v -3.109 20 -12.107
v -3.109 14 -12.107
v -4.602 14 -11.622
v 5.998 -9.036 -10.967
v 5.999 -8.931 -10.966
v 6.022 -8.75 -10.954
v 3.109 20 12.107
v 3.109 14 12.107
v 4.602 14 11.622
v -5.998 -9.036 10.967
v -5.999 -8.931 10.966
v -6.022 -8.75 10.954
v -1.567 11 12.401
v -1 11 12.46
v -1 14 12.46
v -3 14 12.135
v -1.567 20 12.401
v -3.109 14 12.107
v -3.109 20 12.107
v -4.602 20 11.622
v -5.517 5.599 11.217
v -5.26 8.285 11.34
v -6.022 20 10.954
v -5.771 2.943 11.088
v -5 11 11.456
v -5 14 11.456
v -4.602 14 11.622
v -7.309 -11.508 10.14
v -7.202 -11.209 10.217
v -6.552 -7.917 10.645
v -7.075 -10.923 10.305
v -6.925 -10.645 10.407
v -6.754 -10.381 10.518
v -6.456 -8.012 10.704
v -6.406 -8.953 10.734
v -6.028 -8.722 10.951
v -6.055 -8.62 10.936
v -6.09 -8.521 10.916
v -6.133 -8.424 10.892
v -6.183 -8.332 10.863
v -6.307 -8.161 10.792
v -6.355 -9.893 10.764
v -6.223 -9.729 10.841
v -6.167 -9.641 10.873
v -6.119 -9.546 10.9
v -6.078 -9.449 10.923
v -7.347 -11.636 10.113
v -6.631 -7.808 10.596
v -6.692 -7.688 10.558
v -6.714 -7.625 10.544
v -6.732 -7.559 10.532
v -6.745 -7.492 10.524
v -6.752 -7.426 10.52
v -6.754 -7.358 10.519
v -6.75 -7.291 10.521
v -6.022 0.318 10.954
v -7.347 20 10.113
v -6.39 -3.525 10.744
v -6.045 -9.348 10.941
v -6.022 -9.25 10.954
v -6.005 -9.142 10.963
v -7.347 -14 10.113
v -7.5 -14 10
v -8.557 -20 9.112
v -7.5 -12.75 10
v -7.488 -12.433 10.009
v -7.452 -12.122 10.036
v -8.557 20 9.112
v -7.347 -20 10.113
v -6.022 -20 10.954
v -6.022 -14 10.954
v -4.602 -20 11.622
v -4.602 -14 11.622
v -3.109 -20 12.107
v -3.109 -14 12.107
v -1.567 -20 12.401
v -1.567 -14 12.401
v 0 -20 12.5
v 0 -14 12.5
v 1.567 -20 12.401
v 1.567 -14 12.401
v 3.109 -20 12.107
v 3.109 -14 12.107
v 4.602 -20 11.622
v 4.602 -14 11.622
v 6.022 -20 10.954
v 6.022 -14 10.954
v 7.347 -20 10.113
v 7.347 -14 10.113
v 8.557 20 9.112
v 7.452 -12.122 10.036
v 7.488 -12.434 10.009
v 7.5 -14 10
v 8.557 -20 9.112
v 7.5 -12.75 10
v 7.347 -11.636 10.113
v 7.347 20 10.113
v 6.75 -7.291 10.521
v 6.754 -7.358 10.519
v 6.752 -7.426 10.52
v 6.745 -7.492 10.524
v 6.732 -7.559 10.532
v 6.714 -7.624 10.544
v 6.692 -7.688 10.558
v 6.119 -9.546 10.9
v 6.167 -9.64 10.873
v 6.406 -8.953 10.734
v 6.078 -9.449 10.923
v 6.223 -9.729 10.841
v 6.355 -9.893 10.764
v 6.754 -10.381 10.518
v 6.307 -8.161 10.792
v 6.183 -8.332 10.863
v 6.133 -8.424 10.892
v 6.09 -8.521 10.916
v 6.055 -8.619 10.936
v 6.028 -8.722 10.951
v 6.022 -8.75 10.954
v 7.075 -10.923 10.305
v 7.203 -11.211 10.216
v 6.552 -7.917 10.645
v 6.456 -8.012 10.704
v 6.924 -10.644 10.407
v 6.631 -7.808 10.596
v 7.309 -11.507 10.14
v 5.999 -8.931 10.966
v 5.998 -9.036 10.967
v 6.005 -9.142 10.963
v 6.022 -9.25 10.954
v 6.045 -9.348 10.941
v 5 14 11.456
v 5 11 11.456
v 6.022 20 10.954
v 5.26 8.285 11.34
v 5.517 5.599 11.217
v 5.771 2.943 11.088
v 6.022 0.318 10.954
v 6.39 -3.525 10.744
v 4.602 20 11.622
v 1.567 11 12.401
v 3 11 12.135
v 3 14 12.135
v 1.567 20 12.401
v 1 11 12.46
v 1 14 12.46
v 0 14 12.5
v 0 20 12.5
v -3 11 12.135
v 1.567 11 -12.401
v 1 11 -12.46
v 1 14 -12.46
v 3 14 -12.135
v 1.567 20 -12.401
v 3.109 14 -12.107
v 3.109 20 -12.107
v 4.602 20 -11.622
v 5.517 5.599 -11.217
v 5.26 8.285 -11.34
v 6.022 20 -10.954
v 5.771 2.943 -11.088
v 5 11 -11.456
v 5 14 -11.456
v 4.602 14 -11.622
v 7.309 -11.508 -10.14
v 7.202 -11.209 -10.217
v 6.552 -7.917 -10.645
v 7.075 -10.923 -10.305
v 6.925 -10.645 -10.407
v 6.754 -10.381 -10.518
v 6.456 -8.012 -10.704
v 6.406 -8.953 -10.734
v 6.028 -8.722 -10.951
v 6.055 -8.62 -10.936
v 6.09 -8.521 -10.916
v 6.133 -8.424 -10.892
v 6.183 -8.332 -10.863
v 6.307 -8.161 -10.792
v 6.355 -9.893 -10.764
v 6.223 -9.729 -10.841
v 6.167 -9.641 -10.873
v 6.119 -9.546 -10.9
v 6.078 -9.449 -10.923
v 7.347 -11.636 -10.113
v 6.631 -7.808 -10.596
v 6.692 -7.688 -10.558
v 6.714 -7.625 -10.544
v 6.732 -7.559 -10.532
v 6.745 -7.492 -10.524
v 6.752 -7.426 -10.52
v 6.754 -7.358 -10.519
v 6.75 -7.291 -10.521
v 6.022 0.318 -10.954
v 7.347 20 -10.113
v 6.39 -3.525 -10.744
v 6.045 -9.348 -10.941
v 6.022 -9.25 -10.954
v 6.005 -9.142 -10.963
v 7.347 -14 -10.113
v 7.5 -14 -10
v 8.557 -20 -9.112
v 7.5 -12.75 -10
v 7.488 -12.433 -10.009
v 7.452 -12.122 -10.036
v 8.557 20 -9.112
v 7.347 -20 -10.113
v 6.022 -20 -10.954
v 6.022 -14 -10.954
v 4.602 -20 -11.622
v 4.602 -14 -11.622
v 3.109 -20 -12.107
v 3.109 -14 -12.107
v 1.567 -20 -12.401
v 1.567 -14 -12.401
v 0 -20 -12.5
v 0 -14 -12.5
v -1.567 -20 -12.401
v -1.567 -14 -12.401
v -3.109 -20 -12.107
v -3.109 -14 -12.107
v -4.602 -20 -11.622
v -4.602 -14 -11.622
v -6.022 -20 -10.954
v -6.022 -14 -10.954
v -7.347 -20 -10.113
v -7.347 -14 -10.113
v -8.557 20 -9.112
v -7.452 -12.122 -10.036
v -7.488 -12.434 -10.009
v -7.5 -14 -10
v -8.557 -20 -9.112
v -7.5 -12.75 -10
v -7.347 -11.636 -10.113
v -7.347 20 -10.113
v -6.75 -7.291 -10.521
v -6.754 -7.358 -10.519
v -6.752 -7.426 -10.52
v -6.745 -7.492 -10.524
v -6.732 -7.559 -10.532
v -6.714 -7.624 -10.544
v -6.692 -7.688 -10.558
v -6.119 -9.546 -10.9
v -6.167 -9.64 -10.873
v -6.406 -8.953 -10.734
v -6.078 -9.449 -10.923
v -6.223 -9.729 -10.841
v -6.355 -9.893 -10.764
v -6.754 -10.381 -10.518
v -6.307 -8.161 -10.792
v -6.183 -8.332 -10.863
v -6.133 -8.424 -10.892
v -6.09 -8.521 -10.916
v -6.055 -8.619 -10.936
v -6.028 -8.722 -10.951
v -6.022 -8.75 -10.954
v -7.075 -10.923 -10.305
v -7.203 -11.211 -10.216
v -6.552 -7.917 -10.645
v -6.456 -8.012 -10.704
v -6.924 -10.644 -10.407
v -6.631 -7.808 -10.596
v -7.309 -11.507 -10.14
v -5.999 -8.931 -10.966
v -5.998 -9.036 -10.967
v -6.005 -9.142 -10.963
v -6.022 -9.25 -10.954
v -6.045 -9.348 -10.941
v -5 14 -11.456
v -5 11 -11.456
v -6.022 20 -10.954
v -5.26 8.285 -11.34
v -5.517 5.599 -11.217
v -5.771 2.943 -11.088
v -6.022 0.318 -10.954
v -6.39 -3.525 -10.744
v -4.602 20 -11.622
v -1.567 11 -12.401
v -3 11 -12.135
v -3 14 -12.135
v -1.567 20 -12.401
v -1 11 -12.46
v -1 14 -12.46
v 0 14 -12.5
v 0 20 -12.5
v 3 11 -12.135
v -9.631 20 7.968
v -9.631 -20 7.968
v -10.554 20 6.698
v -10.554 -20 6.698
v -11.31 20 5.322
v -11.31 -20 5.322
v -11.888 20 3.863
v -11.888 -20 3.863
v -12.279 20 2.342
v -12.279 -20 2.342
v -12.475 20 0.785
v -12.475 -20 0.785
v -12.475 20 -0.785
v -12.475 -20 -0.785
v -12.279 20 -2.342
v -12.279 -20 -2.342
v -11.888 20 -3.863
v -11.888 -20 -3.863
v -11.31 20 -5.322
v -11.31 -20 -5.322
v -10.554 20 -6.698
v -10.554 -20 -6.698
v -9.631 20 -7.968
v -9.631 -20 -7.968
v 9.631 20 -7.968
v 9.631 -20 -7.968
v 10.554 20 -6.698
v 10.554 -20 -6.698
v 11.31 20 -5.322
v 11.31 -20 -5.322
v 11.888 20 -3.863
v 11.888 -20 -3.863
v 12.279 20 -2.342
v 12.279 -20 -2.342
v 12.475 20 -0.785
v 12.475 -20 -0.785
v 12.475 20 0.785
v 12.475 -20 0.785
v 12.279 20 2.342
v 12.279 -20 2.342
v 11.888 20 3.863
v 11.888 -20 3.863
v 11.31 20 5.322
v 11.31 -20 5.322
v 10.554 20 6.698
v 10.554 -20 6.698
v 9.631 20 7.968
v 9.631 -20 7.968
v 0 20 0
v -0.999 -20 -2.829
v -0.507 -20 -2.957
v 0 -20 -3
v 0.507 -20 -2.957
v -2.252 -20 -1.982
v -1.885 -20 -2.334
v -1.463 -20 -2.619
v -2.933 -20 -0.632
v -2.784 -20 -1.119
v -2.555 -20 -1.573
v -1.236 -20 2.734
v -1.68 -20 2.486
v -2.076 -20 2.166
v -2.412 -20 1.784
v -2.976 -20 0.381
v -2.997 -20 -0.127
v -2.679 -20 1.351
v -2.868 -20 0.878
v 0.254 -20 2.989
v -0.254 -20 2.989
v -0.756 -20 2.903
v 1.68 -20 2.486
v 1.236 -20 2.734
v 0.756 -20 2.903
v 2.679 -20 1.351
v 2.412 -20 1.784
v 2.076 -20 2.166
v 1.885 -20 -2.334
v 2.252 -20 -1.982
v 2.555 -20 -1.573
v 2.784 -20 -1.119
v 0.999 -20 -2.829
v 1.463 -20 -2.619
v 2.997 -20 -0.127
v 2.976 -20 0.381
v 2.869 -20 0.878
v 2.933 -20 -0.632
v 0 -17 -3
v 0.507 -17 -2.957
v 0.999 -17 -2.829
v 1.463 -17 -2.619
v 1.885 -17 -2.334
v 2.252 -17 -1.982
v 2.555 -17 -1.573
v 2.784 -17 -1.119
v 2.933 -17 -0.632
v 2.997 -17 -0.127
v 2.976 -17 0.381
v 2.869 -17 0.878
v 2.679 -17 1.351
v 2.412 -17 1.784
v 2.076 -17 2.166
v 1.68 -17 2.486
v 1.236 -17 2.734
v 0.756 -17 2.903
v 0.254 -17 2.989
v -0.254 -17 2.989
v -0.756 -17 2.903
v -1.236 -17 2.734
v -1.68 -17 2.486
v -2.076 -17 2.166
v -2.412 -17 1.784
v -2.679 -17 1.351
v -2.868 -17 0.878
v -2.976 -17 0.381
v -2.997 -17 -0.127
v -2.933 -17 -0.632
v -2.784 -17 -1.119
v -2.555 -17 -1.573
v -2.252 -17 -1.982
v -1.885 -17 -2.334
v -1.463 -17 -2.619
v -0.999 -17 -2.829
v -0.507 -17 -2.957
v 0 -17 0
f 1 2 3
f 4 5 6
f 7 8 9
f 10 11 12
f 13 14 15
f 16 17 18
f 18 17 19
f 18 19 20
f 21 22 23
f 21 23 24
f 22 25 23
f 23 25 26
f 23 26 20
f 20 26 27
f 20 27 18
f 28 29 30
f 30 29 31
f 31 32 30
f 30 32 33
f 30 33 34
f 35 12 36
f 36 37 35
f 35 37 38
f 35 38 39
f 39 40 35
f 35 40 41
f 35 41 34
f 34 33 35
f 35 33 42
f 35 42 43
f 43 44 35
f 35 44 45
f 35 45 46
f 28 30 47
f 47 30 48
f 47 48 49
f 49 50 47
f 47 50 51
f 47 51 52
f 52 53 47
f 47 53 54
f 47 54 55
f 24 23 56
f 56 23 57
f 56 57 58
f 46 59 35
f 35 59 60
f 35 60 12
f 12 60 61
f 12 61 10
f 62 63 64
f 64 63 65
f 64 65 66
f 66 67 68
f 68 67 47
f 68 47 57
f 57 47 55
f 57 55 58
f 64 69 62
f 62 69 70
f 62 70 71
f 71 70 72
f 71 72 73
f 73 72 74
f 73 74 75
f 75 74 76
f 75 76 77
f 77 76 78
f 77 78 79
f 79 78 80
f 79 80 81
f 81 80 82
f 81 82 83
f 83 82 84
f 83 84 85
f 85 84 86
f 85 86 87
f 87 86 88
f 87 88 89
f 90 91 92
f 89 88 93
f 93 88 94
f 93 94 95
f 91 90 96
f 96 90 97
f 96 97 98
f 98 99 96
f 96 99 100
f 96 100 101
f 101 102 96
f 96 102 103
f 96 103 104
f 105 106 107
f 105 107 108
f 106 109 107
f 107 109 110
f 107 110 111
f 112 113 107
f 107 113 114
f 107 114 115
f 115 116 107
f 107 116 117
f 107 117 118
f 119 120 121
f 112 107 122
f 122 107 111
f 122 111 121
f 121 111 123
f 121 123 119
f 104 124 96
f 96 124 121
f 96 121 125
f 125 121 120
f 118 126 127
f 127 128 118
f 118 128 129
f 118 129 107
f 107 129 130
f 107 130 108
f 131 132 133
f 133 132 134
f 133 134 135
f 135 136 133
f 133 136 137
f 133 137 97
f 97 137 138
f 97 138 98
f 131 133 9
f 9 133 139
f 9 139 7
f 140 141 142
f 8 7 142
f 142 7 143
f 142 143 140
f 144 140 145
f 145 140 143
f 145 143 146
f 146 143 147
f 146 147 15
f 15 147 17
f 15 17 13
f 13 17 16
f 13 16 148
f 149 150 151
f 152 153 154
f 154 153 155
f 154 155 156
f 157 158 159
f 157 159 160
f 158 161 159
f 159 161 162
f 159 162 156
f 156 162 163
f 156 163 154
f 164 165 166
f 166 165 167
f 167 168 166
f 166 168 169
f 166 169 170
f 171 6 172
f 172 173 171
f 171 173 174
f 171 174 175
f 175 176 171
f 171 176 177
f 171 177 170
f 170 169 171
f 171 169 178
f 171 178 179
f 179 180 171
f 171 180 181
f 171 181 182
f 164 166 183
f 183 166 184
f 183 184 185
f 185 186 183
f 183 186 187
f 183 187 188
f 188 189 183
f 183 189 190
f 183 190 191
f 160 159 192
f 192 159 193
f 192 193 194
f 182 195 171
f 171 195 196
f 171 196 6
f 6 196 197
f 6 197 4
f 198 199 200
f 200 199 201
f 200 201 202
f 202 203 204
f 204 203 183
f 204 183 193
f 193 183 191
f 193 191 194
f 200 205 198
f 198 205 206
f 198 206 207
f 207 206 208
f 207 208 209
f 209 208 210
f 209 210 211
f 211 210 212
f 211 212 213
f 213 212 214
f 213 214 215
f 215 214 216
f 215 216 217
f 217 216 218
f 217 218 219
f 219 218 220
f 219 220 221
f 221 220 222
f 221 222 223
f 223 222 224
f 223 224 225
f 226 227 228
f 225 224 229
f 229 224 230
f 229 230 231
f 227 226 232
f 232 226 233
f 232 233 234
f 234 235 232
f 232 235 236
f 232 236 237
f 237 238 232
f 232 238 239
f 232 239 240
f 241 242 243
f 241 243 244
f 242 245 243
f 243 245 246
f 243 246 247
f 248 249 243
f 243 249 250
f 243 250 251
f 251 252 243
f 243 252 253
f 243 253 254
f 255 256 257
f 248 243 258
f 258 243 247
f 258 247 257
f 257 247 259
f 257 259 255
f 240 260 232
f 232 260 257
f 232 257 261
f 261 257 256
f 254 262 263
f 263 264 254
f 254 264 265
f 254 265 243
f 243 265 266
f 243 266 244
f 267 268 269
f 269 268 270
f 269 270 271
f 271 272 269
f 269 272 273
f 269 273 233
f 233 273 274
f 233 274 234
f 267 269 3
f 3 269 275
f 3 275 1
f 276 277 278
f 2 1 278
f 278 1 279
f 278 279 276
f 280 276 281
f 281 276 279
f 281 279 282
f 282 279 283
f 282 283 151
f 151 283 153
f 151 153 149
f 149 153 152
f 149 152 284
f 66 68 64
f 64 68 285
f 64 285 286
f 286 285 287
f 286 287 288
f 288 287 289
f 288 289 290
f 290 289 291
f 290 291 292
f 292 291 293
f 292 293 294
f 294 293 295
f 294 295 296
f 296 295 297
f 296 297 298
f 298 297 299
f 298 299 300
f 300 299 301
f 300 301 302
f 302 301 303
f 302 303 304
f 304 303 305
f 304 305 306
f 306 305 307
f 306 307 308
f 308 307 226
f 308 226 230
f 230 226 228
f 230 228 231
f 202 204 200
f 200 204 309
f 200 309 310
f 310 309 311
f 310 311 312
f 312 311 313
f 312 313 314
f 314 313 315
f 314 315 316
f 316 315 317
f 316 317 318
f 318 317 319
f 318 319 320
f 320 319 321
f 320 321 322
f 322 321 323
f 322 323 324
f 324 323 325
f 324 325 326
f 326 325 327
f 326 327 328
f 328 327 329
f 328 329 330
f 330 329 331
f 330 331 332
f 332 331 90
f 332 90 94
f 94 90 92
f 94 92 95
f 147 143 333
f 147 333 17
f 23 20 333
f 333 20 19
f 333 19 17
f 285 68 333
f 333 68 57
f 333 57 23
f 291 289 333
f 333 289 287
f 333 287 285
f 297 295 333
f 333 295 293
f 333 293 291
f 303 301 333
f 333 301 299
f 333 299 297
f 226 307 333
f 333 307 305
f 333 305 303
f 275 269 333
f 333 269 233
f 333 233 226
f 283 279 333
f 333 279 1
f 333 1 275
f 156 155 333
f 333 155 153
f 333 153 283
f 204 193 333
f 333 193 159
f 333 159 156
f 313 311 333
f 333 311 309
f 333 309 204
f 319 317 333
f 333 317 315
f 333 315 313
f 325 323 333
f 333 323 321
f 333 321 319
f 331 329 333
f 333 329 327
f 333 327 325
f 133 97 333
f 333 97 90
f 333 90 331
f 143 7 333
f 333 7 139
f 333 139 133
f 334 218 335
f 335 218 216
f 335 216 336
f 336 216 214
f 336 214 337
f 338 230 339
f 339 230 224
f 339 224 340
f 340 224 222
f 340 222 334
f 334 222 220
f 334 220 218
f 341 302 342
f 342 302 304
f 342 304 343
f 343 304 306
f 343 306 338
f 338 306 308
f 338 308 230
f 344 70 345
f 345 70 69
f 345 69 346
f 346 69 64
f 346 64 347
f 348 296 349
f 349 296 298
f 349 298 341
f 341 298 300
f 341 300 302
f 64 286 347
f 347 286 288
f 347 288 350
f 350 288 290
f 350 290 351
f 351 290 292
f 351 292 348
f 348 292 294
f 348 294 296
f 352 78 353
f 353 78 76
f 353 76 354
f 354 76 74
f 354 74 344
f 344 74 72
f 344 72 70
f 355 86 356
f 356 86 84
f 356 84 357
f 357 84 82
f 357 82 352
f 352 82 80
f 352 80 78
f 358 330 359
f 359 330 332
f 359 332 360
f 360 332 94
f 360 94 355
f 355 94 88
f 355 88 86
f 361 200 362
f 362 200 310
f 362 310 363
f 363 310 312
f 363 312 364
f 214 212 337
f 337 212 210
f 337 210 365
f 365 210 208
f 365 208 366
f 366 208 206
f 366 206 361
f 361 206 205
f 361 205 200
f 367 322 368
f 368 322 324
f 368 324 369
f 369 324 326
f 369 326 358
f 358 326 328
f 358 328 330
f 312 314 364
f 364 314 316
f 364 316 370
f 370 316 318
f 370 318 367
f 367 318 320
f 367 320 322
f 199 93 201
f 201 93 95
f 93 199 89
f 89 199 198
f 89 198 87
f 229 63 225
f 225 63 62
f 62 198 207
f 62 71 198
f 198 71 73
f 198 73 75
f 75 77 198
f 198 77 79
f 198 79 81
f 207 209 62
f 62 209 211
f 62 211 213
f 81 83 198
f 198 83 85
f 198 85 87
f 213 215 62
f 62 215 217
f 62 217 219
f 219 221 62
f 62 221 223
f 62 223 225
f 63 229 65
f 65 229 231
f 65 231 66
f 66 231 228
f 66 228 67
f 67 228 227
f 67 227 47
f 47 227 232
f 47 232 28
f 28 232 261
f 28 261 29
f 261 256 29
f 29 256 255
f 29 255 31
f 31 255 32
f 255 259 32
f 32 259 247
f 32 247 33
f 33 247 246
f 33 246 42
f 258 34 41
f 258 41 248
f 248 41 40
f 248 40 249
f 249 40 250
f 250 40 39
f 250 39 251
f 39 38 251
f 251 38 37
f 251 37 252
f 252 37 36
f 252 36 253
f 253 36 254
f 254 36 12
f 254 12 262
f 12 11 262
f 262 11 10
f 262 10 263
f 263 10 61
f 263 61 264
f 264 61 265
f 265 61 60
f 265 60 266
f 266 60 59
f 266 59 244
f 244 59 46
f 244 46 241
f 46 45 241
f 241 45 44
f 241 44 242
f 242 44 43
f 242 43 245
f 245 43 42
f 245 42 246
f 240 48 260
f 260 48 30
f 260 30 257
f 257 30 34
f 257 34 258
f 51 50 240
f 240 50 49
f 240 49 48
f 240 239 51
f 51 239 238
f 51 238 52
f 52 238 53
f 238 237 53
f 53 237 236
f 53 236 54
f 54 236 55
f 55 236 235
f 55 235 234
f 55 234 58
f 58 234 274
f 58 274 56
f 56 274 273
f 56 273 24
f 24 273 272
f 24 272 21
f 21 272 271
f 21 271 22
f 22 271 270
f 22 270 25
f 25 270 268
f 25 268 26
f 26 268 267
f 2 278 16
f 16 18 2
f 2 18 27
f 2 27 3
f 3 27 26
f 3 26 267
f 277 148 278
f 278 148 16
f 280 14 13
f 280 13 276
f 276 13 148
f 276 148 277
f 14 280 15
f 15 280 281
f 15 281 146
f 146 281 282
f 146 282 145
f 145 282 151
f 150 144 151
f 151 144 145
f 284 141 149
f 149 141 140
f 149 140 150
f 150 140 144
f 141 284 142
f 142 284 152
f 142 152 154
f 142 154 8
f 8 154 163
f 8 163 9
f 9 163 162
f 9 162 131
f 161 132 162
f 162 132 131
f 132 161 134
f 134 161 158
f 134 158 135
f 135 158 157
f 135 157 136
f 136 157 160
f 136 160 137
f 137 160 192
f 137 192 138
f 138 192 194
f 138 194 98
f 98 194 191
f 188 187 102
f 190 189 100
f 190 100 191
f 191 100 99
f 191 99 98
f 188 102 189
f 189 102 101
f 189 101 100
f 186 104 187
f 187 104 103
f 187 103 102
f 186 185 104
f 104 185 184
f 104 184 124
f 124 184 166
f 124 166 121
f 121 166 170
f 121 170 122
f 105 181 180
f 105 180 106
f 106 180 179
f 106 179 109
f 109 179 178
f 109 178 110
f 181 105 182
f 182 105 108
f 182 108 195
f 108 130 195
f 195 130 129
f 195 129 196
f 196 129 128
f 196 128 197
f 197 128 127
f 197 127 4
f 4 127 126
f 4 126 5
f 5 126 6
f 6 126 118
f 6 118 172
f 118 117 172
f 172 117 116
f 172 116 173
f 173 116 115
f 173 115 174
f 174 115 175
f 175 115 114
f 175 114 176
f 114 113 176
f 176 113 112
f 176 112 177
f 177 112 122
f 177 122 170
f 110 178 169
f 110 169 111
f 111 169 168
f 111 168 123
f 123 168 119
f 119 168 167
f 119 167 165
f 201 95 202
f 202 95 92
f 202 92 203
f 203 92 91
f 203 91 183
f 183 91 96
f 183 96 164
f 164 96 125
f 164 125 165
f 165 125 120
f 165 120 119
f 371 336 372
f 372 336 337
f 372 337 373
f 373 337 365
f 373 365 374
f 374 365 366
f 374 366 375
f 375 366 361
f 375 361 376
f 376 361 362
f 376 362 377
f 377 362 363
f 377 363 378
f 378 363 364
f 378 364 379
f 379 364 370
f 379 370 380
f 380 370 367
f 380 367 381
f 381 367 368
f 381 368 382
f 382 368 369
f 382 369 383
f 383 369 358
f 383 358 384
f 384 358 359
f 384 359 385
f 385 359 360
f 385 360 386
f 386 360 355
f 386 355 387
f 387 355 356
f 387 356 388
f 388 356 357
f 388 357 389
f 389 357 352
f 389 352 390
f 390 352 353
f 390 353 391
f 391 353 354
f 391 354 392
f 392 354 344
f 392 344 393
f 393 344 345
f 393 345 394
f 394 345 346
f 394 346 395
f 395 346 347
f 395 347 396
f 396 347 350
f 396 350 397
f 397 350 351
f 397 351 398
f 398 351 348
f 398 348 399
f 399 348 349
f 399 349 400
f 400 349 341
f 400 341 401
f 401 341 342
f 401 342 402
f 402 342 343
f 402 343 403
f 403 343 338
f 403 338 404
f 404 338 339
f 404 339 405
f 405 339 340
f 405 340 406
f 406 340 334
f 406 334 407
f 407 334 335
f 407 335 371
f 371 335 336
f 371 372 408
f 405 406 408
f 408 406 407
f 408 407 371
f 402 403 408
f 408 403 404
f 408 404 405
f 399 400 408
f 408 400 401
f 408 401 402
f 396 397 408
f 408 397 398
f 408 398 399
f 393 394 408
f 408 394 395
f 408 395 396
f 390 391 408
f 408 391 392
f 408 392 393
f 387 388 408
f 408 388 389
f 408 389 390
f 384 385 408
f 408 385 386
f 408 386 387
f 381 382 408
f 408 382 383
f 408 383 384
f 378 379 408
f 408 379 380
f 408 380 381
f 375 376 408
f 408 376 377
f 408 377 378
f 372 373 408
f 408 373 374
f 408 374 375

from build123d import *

# Parameters (mm, degrees)
SKETCH2_R               = 12.5
BOSS_EXTRUDE1_DEPTH     = 20
CUT_EXTRUDE1_DEPTH      = 13.5
CUT_EXTRUDE1_DEPTH_BACK = 13.5
SKETCH4_R               = 3
CUT_EXTRUDE2_DEPTH      = 3


with BuildPart() as part:
    # Sketch2 → Boss-Extrude1 (new body, symmetric)
    with BuildSketch(Plane(origin=(0, 0, 0), x_dir=(1, 0, 0), z_dir=(0, 1, 0))):
        Circle(SKETCH2_R)
    extrude(amount=BOSS_EXTRUDE1_DEPTH, both=True)

    # Sketch3 → Cut-Extrude1 (cut, two sides)
    with BuildSketch(Plane.XY) as cut_extrude1_sk:
        with BuildLine():
            Line((-7.5, -14), (7.5, -14))
            Line((7.5, -14), (7.5, -12.75))
            ThreePointArc((7.5, -12.75), (7.203207399, -11.211161096), (6.35540622, -9.893077571))
            ThreePointArc((6.35540622, -9.893077571), (5.999449038, -8.930951878), (6.455951755, -8.012258985))
            ThreePointArc((6.455951755, -8.012258985), (6.691617305, -7.687574573), (6.749863955, -7.290629305))
            Line((6.749863955, -7.290629305), (5, 11))
            Line((5, 11), (5, 14))
            Line((5, 14), (3, 14))
            Line((3, 14), (3, 11))
            Line((3, 11), (1, 11))
            Line((1, 11), (1, 14))
            Line((1, 14), (-1, 14))
            Line((-1, 14), (-1, 11))
            Line((-1, 11), (-3, 11))
            Line((-3, 11), (-3, 14))
            Line((-3, 14), (-5, 14))
            Line((-5, 14), (-5, 11))
            Line((-5, 11), (-6.749863955, -7.290629305))
            ThreePointArc((-6.749863955, -7.290629305), (-6.691617305, -7.687574573), (-6.455951755, -8.012258985))
            ThreePointArc((-6.455951755, -8.012258985), (-5.999449038, -8.930951878), (-6.35540622, -9.893077571))
            ThreePointArc((-6.35540622, -9.893077571), (-7.203207399, -11.211161096), (-7.5, -12.75))
            Line((-7.5, -12.75), (-7.5, -14))
        make_face()
    extrude(amount=CUT_EXTRUDE1_DEPTH, mode=Mode.SUBTRACT)
    extrude(cut_extrude1_sk.sketch, amount=-CUT_EXTRUDE1_DEPTH_BACK, mode=Mode.SUBTRACT)

    # Sketch4 → Cut-Extrude2 (cut)
    with BuildSketch(Plane(origin=(0, -20, 0), x_dir=(-1, 0, 0), z_dir=(0, -1, 0))):
        Circle(SKETCH4_R)
    extrude(amount=-CUT_EXTRUDE2_DEPTH, mode=Mode.SUBTRACT)


solid = part.part
